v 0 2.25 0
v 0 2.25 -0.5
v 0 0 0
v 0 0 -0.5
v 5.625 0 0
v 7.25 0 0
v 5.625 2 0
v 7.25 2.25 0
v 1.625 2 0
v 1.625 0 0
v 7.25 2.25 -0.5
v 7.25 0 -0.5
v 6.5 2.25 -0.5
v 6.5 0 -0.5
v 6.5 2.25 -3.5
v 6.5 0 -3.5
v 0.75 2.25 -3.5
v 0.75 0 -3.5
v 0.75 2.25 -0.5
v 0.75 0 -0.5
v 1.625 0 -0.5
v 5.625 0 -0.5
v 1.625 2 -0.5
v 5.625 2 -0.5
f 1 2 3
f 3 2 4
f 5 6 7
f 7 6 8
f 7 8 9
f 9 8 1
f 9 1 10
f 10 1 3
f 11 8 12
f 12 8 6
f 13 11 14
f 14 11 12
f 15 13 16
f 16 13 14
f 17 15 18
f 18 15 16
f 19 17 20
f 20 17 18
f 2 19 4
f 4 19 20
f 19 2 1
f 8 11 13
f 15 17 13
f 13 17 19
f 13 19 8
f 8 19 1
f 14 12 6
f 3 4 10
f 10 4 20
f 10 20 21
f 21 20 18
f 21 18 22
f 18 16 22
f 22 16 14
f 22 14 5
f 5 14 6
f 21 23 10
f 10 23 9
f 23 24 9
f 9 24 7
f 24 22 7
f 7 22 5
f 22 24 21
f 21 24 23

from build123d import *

# Parameters (mm, degrees)
BOSS_EXTRUDE1_DEPTH = 2.25
SKETCH2_W           = 4
SKETCH2_H           = 2
CUT_EXTRUDE1_DEPTH  = 0.5


with BuildPart() as part:
    # Sketch1 → Boss-Extrude1 (new body)
    with BuildSketch(Plane(origin=(0, 0, 0), x_dir=(1, 0, 0), z_dir=(0, 1, 0))):
        Polygon((0, 0), (7.25, 0), (7.25, 0.5), (6.5, 0.5), (6.5, 3.5), (0.75, 3.5), (0.75, 0.5), (0, 0.5), align=None)
    extrude(amount=BOSS_EXTRUDE1_DEPTH)

    # Sketch2 → Cut-Extrude1 (cut)
    with BuildSketch(Plane.XY):
        with Locations((3.625, 1)):
            Rectangle(SKETCH2_W, SKETCH2_H)
    extrude(amount=-CUT_EXTRUDE1_DEPTH, mode=Mode.SUBTRACT)


solid = part.part
